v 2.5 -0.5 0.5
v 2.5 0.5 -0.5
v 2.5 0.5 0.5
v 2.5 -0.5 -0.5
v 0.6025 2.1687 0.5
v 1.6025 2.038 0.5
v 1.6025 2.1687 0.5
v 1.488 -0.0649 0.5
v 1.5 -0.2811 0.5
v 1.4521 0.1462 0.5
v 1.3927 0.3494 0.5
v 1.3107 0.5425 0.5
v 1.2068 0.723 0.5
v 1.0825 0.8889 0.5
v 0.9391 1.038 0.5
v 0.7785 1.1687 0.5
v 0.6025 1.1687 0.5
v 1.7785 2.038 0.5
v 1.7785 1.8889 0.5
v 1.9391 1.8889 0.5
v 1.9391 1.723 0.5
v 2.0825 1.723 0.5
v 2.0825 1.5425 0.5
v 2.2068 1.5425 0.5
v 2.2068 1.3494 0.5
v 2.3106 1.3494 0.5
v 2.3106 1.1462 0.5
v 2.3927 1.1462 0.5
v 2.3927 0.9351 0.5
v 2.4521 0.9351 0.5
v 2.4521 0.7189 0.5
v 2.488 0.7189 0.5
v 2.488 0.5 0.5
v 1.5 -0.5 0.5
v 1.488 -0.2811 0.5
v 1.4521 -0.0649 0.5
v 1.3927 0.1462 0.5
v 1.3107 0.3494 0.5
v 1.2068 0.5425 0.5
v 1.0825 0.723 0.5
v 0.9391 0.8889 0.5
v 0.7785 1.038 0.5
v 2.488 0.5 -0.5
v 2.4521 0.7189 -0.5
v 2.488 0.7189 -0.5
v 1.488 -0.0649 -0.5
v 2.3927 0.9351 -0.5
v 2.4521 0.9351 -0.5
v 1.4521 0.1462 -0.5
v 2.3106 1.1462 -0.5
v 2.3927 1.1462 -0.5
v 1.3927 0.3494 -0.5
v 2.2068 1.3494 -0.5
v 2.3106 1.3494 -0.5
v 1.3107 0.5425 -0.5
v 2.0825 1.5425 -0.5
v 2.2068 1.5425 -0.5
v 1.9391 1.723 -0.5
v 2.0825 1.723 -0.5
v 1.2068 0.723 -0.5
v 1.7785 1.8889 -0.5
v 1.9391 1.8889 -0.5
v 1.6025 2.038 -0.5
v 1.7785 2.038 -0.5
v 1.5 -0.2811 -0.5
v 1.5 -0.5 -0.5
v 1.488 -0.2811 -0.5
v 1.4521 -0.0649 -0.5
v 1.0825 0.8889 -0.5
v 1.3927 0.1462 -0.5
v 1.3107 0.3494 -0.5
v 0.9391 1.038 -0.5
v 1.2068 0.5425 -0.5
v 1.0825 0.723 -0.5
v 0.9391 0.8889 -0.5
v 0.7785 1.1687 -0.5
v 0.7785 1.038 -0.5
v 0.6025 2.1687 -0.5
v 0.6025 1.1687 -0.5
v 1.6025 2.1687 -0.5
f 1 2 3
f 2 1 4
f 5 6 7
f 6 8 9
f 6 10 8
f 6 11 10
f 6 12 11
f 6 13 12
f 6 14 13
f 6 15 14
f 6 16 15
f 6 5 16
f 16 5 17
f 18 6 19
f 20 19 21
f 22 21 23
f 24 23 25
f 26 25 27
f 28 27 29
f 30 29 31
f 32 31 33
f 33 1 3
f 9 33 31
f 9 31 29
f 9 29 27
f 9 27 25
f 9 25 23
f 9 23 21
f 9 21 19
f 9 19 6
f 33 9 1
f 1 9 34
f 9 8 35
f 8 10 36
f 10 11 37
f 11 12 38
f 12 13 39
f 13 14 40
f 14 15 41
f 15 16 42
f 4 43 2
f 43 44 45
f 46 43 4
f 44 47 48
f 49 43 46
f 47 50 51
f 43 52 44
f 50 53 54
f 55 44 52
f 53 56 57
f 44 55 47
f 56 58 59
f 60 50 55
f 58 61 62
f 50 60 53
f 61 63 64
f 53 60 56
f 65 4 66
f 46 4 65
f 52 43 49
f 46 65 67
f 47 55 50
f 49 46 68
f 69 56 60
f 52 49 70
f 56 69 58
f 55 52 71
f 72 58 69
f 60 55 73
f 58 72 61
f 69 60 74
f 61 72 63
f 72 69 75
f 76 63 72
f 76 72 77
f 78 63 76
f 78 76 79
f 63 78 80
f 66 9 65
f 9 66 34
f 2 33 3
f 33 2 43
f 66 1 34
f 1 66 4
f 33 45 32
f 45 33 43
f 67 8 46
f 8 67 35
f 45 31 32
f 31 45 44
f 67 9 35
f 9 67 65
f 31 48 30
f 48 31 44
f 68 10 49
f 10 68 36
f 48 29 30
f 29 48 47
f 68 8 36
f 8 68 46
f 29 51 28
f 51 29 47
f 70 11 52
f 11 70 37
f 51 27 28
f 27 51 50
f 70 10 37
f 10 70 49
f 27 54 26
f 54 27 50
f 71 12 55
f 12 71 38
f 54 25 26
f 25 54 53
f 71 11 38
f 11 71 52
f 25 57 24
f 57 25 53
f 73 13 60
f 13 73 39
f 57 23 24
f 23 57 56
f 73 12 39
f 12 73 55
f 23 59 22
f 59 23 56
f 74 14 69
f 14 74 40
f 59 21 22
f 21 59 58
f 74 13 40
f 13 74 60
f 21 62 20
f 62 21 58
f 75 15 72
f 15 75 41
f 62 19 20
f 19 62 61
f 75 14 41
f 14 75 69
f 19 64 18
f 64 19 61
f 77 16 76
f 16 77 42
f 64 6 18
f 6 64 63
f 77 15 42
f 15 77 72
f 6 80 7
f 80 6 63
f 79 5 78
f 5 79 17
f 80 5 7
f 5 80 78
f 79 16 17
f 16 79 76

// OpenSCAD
// Wave parameters
wavelength = 50;
amplitude = 2;
frequency = 2;
number_of_waves = 10;

module wave(amplitude, frequency, number_of_waves) {
  for (i = [0:number_of_waves - 1]) {
    angle = i * 2 * PI;
    x = amplitude * cos(angle);
    y = amplitude * sin(angle);
    translate([x, y, 0]) {
      cube([1, 1, 1], center = true);
    }
  }
}

wave(amplitude, frequency, number_of_waves);
